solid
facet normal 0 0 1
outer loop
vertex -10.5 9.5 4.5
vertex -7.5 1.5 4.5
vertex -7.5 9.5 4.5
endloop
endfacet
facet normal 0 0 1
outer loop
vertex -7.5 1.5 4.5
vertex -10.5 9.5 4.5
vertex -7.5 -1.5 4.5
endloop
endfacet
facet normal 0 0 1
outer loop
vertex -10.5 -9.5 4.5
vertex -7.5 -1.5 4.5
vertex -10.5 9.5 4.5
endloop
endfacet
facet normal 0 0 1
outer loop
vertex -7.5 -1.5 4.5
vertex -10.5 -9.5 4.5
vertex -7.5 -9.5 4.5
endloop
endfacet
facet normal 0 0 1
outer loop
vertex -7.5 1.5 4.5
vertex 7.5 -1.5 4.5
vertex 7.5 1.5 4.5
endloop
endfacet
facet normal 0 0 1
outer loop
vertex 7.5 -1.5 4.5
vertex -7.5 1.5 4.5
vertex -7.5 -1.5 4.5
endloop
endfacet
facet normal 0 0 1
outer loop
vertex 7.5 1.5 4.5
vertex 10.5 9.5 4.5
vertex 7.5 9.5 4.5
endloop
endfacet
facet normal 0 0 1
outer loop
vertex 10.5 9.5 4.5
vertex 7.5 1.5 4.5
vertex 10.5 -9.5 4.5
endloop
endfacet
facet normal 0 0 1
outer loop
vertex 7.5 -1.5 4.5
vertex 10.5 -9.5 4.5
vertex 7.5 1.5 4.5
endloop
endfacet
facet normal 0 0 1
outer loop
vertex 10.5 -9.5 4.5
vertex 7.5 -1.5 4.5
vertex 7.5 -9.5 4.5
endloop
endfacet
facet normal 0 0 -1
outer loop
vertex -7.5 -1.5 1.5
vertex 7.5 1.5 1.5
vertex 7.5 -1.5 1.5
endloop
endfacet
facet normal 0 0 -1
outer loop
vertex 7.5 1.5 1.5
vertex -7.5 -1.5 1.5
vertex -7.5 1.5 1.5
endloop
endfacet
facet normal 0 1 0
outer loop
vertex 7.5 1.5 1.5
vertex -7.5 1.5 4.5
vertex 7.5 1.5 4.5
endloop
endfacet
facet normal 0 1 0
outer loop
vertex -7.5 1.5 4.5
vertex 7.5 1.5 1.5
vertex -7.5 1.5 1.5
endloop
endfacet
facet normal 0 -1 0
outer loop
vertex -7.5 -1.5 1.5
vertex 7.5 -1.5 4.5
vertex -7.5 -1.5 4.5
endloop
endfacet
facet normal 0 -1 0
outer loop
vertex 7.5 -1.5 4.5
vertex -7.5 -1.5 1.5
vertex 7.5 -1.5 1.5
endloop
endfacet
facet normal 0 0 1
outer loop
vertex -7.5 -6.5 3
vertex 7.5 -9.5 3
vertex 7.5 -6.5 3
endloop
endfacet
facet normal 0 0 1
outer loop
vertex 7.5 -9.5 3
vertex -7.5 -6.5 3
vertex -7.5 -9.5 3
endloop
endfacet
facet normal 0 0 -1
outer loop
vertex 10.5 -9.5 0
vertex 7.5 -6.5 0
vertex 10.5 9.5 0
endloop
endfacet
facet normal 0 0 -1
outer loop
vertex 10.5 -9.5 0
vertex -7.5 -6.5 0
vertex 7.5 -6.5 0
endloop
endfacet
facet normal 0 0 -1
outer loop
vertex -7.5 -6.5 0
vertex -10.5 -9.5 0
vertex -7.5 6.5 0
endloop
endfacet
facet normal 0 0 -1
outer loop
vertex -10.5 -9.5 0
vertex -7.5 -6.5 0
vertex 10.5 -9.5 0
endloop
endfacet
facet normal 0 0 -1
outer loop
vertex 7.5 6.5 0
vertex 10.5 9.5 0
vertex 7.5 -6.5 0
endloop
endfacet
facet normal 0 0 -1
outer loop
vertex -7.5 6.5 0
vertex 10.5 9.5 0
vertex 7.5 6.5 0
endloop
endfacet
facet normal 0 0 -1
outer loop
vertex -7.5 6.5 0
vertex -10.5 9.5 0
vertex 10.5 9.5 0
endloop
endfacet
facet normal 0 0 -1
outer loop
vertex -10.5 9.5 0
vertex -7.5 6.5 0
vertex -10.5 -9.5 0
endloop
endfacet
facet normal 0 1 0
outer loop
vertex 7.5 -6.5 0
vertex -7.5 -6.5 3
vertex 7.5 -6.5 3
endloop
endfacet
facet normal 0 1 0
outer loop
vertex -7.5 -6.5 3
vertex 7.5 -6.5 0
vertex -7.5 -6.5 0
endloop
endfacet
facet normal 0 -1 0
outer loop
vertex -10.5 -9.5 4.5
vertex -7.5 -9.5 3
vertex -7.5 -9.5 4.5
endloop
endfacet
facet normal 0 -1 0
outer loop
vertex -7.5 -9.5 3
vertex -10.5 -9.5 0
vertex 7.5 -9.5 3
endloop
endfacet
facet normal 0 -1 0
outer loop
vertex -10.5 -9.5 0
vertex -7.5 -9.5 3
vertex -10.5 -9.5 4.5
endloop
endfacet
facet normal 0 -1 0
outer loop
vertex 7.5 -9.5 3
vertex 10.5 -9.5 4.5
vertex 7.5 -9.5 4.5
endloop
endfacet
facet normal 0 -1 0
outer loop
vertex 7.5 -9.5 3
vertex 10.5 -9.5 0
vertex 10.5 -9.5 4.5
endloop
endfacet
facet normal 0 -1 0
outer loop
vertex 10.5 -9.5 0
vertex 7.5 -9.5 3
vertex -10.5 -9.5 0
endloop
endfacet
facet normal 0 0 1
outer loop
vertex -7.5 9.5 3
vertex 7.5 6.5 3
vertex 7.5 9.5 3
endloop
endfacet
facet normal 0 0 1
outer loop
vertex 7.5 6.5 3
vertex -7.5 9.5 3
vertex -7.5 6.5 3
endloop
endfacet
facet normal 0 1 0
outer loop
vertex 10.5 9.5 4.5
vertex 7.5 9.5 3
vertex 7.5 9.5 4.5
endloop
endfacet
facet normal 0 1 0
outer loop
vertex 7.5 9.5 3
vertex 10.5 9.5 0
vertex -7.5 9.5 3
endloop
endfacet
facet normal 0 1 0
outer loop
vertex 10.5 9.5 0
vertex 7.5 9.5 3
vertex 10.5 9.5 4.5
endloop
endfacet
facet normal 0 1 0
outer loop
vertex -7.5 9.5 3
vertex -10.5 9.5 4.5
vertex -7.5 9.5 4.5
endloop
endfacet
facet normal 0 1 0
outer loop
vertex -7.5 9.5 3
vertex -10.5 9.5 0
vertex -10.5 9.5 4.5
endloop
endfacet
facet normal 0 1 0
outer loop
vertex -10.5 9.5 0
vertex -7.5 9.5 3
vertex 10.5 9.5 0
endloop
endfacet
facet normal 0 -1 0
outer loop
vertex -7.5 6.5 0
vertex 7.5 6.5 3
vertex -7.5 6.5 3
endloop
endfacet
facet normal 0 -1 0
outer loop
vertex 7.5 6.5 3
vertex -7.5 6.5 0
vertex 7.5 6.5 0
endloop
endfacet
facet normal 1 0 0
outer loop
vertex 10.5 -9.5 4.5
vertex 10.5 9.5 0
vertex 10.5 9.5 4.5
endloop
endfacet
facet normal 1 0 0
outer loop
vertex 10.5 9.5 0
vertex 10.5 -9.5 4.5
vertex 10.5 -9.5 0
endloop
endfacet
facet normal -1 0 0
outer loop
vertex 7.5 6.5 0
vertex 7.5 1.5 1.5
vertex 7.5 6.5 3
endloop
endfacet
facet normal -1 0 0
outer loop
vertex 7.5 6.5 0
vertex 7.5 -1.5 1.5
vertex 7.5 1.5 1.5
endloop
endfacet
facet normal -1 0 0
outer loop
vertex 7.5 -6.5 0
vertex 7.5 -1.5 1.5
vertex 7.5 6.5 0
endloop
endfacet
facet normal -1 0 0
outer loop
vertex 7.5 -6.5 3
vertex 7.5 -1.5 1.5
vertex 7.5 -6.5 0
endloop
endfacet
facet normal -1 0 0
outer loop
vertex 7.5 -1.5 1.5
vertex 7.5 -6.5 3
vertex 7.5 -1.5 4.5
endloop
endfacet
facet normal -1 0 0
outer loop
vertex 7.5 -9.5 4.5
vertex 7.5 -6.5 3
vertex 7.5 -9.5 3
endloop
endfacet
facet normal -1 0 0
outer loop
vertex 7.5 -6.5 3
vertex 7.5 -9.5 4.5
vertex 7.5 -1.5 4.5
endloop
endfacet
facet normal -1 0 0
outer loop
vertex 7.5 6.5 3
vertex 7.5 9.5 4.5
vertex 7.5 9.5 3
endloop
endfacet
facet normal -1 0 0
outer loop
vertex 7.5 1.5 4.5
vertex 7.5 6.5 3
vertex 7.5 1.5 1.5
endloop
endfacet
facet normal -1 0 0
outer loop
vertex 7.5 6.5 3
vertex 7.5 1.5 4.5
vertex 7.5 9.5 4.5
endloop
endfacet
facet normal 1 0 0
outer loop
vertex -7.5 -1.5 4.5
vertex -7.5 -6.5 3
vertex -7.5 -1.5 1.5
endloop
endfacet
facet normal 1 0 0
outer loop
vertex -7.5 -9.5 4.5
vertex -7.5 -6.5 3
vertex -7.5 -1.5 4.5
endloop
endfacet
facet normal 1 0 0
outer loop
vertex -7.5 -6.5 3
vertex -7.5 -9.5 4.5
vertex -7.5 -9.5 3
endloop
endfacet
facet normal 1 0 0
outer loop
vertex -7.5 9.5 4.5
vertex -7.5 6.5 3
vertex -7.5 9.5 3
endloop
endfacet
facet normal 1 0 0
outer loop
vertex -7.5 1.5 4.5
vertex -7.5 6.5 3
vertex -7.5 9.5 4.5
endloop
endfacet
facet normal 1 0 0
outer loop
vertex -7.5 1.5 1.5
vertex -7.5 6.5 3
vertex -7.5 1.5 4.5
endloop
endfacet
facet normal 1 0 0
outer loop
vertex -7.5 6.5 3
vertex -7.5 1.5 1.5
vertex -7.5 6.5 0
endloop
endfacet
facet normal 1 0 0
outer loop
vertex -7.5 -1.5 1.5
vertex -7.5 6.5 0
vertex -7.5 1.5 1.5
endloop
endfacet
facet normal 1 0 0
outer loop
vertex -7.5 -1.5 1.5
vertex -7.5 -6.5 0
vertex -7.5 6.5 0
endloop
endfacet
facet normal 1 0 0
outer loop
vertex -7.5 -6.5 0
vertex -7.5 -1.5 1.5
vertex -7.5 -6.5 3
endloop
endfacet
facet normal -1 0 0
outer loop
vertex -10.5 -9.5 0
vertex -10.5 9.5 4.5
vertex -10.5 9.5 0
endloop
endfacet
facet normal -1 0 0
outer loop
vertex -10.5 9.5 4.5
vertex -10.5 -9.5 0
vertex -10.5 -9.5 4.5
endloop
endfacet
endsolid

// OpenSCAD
translate([0, 0, 3]) {
    cube(size = [20, 3, 3], center=true);
}
translate([0, -8, 1.5]) {
    cube(size = [20, 3, 3], center=true);
}
translate([0, 8, 1.5]) {
    cube(size = [20, 3, 3], center=true);
}
translate([9, 0, 2.25]) {
    cube(size = [3, 19, 4.5], center=true);
}
translate([-9, 0, 2.25]) {
    cube(size = [3, 19, 4.5], center=true);
}
